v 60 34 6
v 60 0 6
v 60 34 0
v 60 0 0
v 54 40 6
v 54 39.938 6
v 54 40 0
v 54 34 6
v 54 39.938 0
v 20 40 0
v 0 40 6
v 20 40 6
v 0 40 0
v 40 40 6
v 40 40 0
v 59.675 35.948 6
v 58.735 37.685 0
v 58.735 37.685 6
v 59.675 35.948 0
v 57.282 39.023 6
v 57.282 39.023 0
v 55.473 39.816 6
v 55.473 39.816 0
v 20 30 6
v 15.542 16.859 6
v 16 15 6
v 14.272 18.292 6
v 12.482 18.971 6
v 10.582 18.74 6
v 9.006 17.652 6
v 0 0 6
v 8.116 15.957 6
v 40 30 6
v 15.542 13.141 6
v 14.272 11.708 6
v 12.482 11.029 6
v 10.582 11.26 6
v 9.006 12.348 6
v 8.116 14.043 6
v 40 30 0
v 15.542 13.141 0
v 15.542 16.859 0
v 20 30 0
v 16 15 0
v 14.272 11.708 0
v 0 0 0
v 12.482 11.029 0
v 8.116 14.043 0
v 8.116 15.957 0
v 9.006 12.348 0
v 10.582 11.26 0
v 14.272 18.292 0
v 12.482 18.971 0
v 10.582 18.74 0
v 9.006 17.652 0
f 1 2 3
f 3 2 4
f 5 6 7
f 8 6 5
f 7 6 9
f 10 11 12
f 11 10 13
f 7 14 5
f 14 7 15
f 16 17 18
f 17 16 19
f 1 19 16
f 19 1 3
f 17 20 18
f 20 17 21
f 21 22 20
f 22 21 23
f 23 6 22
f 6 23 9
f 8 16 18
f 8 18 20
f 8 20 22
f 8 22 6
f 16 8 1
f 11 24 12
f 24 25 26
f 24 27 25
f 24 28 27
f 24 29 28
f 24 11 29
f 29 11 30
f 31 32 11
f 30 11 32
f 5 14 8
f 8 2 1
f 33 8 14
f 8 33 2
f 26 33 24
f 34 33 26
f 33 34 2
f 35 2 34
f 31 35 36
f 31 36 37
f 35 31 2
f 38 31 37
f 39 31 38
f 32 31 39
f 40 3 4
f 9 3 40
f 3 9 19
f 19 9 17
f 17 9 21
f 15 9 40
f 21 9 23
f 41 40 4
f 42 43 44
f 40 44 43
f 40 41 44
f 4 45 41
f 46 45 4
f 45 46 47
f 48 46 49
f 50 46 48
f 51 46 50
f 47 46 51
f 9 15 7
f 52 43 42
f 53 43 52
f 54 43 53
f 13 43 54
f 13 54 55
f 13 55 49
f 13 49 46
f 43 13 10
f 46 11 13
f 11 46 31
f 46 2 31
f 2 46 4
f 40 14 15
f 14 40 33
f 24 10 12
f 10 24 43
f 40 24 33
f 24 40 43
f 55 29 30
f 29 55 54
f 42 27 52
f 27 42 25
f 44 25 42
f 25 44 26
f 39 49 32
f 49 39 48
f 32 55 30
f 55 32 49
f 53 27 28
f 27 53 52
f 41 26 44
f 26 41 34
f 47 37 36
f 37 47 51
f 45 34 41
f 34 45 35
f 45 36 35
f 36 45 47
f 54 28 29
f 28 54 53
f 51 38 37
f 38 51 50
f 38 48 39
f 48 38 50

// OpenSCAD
/* doodle-meta {"version":1,"parameters":{"plate_width":{"label":"Plate Width","description":"Overall width of the plate along X","unit":"mm","feature":"body_width"},"plate_depth":{"label":"Plate Depth","description":"Overall depth of the plate along Y","unit":"mm","feature":"body_depth"},"plate_thickness":{"label":"Plate Thickness","description":"Thickness of the plate along Z","unit":"mm","feature":"body_thickness"},"notch_width":{"label":"Notch Width","description":"Width of the notch cut from the back edge","unit":"mm","feature":"notch"},"notch_depth":{"label":"Notch Depth","description":"Depth of the notch cut from the back edge","unit":"mm","feature":"notch"},"fillet_radius":{"label":"Fillet Radius","description":"Radius of the fillet on the back-right corner","unit":"mm","feature":"fillet"},"hole_diameter":{"label":"Hole Diameter","description":"Diameter of the through hole","unit":"mm","feature":"hole"},"hole_x":{"label":"Hole X Position","description":"X position of the hole center from left edge","unit":"mm","feature":"hole"},"hole_y":{"label":"Hole Y Position","description":"Y position of the hole center from front edge","unit":"mm","feature":"hole"}},"features":{"body_width":{"kind":"dimension","axis":"x","label":"Overall Width"},"body_depth":{"kind":"dimension","axis":"y","label":"Overall Depth"},"body_thickness":{"kind":"dimension","axis":"z","label":"Thickness"},"notch":{"kind":"region","label":"Top Edge Notch","min":[{"parameter":"plate_width","scale":0.5,"offset":-10},{"parameter":"plate_depth","scale":1.0,"offset":0},0],"max":[{"parameter":"plate_width","scale":0.5,"offset":10},{"parameter":"plate_depth","scale":1.0,"offset":10},{"parameter":"plate_thickness","scale":1.0,"offset":0}]},"fillet":{"kind":"region","label":"Top-Right Fillet","min":[{"parameter":"plate_width","scale":1.0,"offset":-6},{"parameter":"plate_depth","scale":1.0,"offset":-6},0],"max":[{"parameter":"plate_width","scale":1.0,"offset":0},{"parameter":"plate_depth","scale":1.0,"offset":0},{"parameter":"plate_thickness","scale":1.0,"offset":0}]},"hole":{"kind":"region","label":"Through Hole","min":[{"parameter":"hole_x","scale":1.0,"offset":-4},{"parameter":"hole_y","scale":1.0,"offset":-4},0],"max":[{"parameter":"hole_x","scale":1.0,"offset":4},{"parameter":"hole_y","scale":1.0,"offset":4},{"parameter":"plate_thickness","scale":1.0,"offset":0}]}}} */

// Parameters
plate_width = 60;
plate_depth = 40;
plate_thickness = 6;
notch_width = 20;
notch_depth = 10;
fillet_radius = 6;
hole_diameter = 8;
hole_x = 12;
hole_y = 15;

// Derived constants
eps = 0.01;

// Main Design
difference() {
    // 1. Base Plate
    cube([plate_width, plate_depth, plate_thickness]);

    // 2. Notch Cutout (Back Edge, Centered)
    // Back edge is at Y = plate_depth.
    // Notch cuts from Y = plate_depth - notch_depth to Y = plate_depth + eps
    // Centered on X: X from (plate_width - notch_width)/2 to (plate_width + notch_width)/2
    translate([
        (plate_width - notch_width) / 2,
        plate_depth - notch_depth,
        -eps
    ])
    cube([
        notch_width,
        notch_depth + eps,
        plate_thickness + 2 * eps
    ]);

    // 3. Fillet Cutout (Back-Right Corner)
    // Corner is at (plate_width, plate_depth).
    // We subtract a square of size fillet_radius x fillet_radius at the corner,
    // and add back a cylinder of radius fillet_radius to create the rounded corner.
    // This effectively rounds the corner.
    // The square to subtract is at X: [plate_width - fillet_radius, plate_width]
    // Y: [plate_depth - fillet_radius, plate_depth]
    // We use a difference inside the main difference? No, we can just subtract the "corner square minus cylinder".
    // Or simpler: Subtract the square, then Union the cylinder? No, we are in a difference block.
    // We need to subtract the material that is OUTSIDE the fillet but INSIDE the corner square.
    // Material to remove = Square - Cylinder.
    // So we subtract (Square - Cylinder).
    // This is equivalent to: difference() { Square; Cylinder; }
    // But we are already in a difference. So we can just subtract the Square, and then Union the Cylinder back?
    // No, the structure is difference() { Base; Cutters; }.
    // If we subtract the Square, we lose the corner. We want to keep the rounded part.
    // So we should NOT subtract the whole square. We should subtract (Square - Cylinder).
    // In OpenSCAD, difference() { A; B; } removes B from A.
    // To remove (Square - Cylinder), we can do:
    // difference() {
    //    Base;
    //    translate(...) {
    //       difference() {
    //          cube([fillet_radius, fillet_radius, ...]);
    //          cylinder(...);
    //       }
    //    }
    // }
    
    translate([
        plate_width - fillet_radius,
        plate_depth - fillet_radius,
        -eps
    ])
    difference() {
        cube([fillet_radius, fillet_radius, plate_thickness + 2 * eps]);
        translate([0, 0, -eps])
        cylinder(h = plate_thickness + 2 * eps, r = fillet_radius, center = false);
    }

    // 4. Through Hole
    // Position (hole_x, hole_y) from bottom-left (0,0).
    // Cylinder axis is Z.
    translate([hole_x, hole_y, -eps])
    cylinder(h = plate_thickness + 2 * eps, d = hole_diameter, center = false);
}
